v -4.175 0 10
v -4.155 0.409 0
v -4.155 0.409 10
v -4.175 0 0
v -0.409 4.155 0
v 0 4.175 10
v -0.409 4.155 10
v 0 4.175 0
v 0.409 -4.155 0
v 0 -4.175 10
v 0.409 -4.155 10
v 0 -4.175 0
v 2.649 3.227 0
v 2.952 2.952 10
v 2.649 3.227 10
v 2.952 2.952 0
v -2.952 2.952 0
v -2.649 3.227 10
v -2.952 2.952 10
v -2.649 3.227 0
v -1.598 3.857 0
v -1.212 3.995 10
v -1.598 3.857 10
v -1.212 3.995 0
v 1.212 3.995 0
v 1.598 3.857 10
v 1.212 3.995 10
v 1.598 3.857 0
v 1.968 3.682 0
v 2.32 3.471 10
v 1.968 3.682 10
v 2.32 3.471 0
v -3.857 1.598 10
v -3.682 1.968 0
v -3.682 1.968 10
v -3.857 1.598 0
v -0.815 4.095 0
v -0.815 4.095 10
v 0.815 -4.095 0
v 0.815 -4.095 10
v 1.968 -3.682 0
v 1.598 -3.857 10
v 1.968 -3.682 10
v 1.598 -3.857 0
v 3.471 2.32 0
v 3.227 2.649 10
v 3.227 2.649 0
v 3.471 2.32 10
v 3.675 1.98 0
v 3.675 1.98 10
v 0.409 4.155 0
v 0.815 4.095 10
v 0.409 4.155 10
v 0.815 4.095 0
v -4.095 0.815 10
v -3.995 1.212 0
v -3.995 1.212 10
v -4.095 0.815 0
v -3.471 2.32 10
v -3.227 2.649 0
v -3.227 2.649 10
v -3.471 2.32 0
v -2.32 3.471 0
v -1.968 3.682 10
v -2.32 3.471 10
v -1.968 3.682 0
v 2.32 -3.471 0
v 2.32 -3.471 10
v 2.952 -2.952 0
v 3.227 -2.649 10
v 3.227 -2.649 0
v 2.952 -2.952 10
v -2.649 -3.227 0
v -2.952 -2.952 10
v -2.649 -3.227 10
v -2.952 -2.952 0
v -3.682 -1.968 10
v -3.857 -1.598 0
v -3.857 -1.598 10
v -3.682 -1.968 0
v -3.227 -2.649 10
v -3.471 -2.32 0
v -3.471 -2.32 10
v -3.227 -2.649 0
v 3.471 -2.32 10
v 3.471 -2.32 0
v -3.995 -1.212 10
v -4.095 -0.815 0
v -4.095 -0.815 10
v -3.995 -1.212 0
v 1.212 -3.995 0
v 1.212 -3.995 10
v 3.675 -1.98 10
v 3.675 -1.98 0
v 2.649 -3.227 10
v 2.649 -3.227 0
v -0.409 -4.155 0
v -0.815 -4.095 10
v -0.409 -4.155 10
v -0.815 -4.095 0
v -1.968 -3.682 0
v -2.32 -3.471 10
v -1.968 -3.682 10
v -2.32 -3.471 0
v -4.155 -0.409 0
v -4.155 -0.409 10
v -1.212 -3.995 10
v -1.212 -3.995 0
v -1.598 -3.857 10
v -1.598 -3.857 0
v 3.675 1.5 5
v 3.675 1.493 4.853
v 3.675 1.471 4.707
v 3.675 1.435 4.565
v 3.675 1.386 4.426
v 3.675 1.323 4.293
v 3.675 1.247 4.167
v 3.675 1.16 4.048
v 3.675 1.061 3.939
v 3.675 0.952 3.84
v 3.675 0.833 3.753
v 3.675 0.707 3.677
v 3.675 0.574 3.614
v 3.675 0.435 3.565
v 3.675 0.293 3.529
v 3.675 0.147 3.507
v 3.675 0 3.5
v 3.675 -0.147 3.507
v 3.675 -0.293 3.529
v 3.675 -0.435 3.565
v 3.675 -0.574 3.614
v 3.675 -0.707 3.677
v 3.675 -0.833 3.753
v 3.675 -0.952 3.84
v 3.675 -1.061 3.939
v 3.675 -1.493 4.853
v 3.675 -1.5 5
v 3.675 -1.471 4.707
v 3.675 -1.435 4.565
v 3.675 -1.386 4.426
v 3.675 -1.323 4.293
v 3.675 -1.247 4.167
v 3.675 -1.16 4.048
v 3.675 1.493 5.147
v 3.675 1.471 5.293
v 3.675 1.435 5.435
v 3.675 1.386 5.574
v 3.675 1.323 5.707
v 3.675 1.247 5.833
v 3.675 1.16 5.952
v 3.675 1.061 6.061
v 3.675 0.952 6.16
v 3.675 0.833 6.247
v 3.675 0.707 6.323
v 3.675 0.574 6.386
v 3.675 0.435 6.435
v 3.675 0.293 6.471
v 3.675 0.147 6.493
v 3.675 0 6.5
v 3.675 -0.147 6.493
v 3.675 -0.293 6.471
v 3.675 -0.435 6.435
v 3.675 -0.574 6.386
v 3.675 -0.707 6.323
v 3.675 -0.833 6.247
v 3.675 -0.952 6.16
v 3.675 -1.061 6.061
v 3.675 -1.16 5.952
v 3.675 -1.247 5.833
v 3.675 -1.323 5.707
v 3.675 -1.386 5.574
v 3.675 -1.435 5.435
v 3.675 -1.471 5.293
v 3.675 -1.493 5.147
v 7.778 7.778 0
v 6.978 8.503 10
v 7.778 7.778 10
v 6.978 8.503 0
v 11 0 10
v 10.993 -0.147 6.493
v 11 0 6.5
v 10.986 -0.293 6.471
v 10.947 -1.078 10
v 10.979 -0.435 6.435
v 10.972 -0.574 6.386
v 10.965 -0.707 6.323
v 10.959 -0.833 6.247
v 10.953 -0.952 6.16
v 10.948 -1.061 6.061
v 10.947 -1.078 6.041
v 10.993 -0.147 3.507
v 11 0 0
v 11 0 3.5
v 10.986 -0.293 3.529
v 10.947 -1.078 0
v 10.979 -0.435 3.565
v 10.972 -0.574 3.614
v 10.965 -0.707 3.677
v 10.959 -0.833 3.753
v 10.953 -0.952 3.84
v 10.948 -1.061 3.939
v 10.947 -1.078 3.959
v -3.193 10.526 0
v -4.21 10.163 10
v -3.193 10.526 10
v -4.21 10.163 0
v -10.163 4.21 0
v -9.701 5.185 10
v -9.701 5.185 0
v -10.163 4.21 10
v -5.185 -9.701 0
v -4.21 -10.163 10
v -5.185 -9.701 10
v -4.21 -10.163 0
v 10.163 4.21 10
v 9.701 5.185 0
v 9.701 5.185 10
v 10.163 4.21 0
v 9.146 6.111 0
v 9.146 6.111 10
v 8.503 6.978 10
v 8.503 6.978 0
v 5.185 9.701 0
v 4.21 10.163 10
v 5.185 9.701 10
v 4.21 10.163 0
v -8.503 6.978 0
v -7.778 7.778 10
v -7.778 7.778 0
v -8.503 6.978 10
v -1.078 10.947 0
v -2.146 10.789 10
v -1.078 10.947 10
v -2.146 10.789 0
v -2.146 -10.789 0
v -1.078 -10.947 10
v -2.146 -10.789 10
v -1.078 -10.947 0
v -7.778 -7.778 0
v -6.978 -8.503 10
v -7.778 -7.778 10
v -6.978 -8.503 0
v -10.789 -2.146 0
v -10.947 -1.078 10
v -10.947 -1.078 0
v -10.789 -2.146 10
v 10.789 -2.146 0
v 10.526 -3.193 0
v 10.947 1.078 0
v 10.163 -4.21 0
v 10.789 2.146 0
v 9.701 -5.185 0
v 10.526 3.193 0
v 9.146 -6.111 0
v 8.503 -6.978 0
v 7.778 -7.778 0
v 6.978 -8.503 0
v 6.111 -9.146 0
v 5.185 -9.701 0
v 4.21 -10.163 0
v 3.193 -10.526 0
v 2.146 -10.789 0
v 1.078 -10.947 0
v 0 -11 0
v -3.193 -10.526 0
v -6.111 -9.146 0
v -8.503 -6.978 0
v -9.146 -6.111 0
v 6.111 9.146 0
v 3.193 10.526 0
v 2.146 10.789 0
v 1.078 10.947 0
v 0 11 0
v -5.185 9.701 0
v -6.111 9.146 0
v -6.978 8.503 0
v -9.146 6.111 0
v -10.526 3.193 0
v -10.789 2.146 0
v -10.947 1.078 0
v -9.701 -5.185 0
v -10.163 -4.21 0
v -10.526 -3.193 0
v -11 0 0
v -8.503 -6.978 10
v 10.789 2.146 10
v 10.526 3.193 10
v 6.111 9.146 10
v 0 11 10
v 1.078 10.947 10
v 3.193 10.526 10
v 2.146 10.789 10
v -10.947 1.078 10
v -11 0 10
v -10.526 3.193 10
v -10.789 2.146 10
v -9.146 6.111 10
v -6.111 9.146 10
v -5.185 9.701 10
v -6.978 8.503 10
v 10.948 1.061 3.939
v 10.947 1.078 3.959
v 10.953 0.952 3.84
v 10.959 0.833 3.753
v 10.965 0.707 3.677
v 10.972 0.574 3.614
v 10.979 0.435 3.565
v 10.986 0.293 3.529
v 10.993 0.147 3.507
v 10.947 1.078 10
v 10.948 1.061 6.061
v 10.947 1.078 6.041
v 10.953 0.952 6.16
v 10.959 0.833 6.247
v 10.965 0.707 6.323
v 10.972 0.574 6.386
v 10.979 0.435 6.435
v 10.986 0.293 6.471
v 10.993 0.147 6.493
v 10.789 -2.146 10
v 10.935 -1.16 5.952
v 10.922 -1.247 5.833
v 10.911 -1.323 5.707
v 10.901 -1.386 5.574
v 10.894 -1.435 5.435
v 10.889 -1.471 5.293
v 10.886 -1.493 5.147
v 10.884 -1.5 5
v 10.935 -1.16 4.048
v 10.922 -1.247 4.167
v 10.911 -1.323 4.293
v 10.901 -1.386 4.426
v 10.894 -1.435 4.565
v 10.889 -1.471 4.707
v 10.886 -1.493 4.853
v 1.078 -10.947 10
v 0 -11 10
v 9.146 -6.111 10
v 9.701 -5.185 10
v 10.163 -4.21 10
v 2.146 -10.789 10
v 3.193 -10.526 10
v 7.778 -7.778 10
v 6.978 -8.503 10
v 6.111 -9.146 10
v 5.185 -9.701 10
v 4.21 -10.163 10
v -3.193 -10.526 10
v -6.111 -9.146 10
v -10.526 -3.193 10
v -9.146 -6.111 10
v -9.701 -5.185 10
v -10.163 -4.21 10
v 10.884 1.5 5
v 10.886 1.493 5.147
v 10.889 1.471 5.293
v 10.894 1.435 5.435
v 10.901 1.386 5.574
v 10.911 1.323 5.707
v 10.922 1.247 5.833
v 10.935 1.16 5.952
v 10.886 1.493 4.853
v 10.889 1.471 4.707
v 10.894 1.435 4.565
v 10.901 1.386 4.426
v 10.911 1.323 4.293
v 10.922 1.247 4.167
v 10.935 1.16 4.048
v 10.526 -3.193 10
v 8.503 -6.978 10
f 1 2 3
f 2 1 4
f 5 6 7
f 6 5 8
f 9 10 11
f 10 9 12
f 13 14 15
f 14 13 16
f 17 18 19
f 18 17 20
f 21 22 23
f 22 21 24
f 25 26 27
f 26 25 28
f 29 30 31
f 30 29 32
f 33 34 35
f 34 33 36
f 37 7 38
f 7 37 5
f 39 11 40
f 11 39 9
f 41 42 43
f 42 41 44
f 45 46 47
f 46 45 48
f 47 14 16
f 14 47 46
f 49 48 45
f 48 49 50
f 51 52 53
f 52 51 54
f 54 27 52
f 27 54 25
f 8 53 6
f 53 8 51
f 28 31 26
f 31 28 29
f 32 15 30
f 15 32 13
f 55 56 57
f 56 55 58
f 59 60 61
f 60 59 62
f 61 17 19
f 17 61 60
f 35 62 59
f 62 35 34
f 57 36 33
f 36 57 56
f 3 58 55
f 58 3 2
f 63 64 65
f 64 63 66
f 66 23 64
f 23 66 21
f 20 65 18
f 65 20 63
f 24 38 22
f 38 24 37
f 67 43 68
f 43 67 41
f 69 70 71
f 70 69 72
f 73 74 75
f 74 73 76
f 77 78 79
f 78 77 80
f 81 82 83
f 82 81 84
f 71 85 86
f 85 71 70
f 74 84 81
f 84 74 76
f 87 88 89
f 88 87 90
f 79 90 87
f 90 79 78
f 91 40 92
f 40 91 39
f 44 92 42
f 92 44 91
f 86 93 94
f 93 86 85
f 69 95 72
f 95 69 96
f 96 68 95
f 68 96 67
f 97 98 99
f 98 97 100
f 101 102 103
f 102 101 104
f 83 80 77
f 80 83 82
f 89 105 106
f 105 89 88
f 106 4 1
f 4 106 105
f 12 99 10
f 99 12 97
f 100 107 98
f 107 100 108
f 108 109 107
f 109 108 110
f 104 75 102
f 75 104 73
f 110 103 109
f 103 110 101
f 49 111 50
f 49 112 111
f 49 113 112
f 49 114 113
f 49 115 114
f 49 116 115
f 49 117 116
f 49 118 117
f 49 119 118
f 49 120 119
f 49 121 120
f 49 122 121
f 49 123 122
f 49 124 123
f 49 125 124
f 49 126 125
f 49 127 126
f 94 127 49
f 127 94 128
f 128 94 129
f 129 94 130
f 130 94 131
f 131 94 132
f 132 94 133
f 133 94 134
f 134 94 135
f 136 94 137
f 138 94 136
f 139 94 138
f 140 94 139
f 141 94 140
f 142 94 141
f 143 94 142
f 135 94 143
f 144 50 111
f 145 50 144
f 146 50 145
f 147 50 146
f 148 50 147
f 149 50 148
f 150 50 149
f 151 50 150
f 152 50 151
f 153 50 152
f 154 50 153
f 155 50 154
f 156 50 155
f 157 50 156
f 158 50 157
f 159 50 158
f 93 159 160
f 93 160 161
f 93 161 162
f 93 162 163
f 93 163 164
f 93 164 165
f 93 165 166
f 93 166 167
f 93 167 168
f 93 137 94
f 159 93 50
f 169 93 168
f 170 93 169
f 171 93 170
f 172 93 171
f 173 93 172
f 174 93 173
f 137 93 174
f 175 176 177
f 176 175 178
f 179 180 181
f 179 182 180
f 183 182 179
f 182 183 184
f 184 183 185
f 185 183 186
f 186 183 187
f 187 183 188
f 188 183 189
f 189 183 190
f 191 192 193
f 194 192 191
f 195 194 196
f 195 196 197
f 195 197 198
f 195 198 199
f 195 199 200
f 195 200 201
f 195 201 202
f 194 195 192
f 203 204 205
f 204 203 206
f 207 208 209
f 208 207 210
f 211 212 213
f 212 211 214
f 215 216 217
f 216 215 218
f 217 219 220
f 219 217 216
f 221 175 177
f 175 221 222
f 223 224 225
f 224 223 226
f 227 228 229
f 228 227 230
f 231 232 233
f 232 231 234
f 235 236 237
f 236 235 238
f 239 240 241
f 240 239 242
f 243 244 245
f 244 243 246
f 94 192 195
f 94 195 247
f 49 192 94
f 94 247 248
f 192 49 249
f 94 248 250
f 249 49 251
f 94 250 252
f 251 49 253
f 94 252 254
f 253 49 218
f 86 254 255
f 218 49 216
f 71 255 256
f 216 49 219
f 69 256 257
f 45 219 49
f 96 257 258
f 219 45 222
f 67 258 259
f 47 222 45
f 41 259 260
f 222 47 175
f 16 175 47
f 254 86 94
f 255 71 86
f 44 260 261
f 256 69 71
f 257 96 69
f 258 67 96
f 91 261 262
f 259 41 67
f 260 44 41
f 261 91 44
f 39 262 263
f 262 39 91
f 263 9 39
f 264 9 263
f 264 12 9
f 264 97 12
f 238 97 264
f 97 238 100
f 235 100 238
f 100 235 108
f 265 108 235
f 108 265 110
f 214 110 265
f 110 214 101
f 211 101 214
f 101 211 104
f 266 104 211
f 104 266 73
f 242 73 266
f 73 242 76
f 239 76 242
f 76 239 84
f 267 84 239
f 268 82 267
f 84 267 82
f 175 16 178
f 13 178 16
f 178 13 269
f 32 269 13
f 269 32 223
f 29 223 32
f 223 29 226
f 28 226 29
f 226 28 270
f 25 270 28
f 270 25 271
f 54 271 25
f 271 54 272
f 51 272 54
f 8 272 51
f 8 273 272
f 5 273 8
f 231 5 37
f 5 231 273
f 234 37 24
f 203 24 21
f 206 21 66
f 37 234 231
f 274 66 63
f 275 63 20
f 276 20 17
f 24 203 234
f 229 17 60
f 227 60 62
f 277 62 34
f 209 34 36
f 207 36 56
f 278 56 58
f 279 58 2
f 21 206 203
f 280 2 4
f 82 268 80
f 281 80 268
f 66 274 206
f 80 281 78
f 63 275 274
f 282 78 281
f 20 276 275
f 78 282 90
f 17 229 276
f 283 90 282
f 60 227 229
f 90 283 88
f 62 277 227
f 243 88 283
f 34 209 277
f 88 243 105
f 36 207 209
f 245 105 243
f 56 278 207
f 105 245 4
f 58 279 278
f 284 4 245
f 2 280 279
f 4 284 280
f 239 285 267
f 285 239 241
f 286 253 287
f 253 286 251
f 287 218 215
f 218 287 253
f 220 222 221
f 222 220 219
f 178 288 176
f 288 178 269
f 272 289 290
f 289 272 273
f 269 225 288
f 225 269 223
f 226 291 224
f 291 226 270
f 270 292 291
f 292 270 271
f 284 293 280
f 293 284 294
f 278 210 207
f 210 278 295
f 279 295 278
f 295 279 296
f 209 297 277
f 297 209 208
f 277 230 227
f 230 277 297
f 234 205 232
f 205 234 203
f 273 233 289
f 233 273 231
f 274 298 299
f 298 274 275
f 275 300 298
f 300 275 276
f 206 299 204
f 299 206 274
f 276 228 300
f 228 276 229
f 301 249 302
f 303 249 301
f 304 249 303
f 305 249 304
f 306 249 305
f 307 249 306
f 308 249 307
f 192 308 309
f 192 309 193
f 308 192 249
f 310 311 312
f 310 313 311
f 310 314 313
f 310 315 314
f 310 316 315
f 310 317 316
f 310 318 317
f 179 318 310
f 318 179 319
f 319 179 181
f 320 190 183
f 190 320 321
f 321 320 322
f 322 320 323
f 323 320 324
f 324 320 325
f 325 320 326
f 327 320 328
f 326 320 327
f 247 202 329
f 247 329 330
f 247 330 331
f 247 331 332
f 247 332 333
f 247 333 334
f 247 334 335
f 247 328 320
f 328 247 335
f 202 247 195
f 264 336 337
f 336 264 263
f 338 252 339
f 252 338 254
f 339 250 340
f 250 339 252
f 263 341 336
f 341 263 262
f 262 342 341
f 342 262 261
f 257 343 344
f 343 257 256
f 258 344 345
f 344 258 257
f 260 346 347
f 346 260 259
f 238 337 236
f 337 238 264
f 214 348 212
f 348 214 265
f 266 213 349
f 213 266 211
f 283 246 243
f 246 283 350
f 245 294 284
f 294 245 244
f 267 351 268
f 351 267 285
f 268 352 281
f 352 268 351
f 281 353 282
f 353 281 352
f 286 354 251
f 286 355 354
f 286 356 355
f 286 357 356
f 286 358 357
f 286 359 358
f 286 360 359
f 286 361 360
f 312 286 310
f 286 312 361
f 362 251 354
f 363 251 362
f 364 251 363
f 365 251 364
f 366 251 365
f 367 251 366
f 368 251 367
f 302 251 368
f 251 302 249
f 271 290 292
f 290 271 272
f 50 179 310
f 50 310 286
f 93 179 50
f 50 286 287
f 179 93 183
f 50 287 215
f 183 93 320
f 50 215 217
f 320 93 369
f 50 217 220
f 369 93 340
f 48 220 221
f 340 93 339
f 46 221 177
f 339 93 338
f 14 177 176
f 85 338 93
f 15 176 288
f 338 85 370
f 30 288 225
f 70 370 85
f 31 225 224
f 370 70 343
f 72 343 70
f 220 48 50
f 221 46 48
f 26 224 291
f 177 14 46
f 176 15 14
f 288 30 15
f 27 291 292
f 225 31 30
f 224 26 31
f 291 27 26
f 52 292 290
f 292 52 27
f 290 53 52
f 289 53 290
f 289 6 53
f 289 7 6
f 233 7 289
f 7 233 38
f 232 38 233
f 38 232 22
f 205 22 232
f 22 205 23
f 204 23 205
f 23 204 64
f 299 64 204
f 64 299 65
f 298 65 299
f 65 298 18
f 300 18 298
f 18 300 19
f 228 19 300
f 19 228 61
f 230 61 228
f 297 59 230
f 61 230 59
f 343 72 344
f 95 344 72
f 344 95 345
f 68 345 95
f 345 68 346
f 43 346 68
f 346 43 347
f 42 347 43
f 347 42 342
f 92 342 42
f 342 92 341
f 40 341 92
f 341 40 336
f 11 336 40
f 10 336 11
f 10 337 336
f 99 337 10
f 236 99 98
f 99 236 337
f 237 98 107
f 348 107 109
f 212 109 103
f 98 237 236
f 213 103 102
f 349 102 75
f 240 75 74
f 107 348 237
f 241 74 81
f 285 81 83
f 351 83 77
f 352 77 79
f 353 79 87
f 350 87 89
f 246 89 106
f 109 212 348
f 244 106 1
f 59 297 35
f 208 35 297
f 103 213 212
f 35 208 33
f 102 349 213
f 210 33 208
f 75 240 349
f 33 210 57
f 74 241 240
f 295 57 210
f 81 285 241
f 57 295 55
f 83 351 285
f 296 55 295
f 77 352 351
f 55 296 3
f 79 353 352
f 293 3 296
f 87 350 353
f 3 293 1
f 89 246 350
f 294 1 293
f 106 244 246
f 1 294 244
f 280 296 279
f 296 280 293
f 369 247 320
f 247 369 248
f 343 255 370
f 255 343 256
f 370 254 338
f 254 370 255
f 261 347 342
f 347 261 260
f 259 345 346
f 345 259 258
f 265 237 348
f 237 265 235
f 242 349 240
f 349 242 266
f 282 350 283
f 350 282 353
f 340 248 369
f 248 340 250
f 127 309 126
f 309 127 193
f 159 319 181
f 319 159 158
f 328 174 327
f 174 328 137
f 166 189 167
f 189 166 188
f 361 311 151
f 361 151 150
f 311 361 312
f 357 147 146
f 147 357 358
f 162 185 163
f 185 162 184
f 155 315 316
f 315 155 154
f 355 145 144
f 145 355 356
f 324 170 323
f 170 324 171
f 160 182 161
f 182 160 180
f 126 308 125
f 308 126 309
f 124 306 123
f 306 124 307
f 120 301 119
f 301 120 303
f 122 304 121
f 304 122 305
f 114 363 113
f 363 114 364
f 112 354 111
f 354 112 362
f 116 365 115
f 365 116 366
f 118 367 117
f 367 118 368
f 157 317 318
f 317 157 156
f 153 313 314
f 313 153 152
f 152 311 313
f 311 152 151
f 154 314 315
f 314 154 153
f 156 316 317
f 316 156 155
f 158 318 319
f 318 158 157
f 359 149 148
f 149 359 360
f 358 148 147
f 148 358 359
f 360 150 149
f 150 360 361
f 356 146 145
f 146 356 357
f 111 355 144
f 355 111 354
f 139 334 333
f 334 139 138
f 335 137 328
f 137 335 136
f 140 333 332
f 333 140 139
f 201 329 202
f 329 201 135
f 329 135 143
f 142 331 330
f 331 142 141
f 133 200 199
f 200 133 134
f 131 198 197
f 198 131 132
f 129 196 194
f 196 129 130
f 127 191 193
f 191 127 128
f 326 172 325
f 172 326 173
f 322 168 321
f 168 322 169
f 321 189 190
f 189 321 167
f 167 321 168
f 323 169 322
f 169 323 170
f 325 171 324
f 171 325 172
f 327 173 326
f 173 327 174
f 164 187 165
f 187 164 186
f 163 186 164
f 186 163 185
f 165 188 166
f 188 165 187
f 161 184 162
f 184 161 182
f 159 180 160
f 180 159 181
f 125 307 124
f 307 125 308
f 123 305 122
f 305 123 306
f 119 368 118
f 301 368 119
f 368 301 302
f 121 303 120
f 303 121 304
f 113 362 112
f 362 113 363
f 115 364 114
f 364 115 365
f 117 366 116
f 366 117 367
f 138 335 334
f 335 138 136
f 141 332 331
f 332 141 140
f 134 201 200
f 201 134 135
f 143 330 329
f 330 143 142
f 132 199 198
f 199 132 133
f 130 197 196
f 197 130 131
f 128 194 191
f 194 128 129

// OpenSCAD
// Gen-DH — shaft collar with D-flat bore (set screw bears on the flat); print x4
include <parameters.scad>;
$fn = 64;
// D-flat keyed bore: flat faces +X (angle 0 = magnet pocket 0 = index notch)
module dflat_bore(h) {
    intersection() {
        cylinder(d=shaft_bore, h=h);
        translate([-shaft_bore, -shaft_bore, 0]) cube([shaft_bore + dflat_x, 2*shaft_bore, h]);
    }
}

od = 22; h = collar_h; set_d = 3.0;
difference() {
    cylinder(d=od, h=h);
    translate([0, 0, -0.1]) dflat_bore(h + 0.2);
    translate([0, 0, h/2]) rotate([0, 90, 0]) cylinder(d=set_d, h=od);
}
